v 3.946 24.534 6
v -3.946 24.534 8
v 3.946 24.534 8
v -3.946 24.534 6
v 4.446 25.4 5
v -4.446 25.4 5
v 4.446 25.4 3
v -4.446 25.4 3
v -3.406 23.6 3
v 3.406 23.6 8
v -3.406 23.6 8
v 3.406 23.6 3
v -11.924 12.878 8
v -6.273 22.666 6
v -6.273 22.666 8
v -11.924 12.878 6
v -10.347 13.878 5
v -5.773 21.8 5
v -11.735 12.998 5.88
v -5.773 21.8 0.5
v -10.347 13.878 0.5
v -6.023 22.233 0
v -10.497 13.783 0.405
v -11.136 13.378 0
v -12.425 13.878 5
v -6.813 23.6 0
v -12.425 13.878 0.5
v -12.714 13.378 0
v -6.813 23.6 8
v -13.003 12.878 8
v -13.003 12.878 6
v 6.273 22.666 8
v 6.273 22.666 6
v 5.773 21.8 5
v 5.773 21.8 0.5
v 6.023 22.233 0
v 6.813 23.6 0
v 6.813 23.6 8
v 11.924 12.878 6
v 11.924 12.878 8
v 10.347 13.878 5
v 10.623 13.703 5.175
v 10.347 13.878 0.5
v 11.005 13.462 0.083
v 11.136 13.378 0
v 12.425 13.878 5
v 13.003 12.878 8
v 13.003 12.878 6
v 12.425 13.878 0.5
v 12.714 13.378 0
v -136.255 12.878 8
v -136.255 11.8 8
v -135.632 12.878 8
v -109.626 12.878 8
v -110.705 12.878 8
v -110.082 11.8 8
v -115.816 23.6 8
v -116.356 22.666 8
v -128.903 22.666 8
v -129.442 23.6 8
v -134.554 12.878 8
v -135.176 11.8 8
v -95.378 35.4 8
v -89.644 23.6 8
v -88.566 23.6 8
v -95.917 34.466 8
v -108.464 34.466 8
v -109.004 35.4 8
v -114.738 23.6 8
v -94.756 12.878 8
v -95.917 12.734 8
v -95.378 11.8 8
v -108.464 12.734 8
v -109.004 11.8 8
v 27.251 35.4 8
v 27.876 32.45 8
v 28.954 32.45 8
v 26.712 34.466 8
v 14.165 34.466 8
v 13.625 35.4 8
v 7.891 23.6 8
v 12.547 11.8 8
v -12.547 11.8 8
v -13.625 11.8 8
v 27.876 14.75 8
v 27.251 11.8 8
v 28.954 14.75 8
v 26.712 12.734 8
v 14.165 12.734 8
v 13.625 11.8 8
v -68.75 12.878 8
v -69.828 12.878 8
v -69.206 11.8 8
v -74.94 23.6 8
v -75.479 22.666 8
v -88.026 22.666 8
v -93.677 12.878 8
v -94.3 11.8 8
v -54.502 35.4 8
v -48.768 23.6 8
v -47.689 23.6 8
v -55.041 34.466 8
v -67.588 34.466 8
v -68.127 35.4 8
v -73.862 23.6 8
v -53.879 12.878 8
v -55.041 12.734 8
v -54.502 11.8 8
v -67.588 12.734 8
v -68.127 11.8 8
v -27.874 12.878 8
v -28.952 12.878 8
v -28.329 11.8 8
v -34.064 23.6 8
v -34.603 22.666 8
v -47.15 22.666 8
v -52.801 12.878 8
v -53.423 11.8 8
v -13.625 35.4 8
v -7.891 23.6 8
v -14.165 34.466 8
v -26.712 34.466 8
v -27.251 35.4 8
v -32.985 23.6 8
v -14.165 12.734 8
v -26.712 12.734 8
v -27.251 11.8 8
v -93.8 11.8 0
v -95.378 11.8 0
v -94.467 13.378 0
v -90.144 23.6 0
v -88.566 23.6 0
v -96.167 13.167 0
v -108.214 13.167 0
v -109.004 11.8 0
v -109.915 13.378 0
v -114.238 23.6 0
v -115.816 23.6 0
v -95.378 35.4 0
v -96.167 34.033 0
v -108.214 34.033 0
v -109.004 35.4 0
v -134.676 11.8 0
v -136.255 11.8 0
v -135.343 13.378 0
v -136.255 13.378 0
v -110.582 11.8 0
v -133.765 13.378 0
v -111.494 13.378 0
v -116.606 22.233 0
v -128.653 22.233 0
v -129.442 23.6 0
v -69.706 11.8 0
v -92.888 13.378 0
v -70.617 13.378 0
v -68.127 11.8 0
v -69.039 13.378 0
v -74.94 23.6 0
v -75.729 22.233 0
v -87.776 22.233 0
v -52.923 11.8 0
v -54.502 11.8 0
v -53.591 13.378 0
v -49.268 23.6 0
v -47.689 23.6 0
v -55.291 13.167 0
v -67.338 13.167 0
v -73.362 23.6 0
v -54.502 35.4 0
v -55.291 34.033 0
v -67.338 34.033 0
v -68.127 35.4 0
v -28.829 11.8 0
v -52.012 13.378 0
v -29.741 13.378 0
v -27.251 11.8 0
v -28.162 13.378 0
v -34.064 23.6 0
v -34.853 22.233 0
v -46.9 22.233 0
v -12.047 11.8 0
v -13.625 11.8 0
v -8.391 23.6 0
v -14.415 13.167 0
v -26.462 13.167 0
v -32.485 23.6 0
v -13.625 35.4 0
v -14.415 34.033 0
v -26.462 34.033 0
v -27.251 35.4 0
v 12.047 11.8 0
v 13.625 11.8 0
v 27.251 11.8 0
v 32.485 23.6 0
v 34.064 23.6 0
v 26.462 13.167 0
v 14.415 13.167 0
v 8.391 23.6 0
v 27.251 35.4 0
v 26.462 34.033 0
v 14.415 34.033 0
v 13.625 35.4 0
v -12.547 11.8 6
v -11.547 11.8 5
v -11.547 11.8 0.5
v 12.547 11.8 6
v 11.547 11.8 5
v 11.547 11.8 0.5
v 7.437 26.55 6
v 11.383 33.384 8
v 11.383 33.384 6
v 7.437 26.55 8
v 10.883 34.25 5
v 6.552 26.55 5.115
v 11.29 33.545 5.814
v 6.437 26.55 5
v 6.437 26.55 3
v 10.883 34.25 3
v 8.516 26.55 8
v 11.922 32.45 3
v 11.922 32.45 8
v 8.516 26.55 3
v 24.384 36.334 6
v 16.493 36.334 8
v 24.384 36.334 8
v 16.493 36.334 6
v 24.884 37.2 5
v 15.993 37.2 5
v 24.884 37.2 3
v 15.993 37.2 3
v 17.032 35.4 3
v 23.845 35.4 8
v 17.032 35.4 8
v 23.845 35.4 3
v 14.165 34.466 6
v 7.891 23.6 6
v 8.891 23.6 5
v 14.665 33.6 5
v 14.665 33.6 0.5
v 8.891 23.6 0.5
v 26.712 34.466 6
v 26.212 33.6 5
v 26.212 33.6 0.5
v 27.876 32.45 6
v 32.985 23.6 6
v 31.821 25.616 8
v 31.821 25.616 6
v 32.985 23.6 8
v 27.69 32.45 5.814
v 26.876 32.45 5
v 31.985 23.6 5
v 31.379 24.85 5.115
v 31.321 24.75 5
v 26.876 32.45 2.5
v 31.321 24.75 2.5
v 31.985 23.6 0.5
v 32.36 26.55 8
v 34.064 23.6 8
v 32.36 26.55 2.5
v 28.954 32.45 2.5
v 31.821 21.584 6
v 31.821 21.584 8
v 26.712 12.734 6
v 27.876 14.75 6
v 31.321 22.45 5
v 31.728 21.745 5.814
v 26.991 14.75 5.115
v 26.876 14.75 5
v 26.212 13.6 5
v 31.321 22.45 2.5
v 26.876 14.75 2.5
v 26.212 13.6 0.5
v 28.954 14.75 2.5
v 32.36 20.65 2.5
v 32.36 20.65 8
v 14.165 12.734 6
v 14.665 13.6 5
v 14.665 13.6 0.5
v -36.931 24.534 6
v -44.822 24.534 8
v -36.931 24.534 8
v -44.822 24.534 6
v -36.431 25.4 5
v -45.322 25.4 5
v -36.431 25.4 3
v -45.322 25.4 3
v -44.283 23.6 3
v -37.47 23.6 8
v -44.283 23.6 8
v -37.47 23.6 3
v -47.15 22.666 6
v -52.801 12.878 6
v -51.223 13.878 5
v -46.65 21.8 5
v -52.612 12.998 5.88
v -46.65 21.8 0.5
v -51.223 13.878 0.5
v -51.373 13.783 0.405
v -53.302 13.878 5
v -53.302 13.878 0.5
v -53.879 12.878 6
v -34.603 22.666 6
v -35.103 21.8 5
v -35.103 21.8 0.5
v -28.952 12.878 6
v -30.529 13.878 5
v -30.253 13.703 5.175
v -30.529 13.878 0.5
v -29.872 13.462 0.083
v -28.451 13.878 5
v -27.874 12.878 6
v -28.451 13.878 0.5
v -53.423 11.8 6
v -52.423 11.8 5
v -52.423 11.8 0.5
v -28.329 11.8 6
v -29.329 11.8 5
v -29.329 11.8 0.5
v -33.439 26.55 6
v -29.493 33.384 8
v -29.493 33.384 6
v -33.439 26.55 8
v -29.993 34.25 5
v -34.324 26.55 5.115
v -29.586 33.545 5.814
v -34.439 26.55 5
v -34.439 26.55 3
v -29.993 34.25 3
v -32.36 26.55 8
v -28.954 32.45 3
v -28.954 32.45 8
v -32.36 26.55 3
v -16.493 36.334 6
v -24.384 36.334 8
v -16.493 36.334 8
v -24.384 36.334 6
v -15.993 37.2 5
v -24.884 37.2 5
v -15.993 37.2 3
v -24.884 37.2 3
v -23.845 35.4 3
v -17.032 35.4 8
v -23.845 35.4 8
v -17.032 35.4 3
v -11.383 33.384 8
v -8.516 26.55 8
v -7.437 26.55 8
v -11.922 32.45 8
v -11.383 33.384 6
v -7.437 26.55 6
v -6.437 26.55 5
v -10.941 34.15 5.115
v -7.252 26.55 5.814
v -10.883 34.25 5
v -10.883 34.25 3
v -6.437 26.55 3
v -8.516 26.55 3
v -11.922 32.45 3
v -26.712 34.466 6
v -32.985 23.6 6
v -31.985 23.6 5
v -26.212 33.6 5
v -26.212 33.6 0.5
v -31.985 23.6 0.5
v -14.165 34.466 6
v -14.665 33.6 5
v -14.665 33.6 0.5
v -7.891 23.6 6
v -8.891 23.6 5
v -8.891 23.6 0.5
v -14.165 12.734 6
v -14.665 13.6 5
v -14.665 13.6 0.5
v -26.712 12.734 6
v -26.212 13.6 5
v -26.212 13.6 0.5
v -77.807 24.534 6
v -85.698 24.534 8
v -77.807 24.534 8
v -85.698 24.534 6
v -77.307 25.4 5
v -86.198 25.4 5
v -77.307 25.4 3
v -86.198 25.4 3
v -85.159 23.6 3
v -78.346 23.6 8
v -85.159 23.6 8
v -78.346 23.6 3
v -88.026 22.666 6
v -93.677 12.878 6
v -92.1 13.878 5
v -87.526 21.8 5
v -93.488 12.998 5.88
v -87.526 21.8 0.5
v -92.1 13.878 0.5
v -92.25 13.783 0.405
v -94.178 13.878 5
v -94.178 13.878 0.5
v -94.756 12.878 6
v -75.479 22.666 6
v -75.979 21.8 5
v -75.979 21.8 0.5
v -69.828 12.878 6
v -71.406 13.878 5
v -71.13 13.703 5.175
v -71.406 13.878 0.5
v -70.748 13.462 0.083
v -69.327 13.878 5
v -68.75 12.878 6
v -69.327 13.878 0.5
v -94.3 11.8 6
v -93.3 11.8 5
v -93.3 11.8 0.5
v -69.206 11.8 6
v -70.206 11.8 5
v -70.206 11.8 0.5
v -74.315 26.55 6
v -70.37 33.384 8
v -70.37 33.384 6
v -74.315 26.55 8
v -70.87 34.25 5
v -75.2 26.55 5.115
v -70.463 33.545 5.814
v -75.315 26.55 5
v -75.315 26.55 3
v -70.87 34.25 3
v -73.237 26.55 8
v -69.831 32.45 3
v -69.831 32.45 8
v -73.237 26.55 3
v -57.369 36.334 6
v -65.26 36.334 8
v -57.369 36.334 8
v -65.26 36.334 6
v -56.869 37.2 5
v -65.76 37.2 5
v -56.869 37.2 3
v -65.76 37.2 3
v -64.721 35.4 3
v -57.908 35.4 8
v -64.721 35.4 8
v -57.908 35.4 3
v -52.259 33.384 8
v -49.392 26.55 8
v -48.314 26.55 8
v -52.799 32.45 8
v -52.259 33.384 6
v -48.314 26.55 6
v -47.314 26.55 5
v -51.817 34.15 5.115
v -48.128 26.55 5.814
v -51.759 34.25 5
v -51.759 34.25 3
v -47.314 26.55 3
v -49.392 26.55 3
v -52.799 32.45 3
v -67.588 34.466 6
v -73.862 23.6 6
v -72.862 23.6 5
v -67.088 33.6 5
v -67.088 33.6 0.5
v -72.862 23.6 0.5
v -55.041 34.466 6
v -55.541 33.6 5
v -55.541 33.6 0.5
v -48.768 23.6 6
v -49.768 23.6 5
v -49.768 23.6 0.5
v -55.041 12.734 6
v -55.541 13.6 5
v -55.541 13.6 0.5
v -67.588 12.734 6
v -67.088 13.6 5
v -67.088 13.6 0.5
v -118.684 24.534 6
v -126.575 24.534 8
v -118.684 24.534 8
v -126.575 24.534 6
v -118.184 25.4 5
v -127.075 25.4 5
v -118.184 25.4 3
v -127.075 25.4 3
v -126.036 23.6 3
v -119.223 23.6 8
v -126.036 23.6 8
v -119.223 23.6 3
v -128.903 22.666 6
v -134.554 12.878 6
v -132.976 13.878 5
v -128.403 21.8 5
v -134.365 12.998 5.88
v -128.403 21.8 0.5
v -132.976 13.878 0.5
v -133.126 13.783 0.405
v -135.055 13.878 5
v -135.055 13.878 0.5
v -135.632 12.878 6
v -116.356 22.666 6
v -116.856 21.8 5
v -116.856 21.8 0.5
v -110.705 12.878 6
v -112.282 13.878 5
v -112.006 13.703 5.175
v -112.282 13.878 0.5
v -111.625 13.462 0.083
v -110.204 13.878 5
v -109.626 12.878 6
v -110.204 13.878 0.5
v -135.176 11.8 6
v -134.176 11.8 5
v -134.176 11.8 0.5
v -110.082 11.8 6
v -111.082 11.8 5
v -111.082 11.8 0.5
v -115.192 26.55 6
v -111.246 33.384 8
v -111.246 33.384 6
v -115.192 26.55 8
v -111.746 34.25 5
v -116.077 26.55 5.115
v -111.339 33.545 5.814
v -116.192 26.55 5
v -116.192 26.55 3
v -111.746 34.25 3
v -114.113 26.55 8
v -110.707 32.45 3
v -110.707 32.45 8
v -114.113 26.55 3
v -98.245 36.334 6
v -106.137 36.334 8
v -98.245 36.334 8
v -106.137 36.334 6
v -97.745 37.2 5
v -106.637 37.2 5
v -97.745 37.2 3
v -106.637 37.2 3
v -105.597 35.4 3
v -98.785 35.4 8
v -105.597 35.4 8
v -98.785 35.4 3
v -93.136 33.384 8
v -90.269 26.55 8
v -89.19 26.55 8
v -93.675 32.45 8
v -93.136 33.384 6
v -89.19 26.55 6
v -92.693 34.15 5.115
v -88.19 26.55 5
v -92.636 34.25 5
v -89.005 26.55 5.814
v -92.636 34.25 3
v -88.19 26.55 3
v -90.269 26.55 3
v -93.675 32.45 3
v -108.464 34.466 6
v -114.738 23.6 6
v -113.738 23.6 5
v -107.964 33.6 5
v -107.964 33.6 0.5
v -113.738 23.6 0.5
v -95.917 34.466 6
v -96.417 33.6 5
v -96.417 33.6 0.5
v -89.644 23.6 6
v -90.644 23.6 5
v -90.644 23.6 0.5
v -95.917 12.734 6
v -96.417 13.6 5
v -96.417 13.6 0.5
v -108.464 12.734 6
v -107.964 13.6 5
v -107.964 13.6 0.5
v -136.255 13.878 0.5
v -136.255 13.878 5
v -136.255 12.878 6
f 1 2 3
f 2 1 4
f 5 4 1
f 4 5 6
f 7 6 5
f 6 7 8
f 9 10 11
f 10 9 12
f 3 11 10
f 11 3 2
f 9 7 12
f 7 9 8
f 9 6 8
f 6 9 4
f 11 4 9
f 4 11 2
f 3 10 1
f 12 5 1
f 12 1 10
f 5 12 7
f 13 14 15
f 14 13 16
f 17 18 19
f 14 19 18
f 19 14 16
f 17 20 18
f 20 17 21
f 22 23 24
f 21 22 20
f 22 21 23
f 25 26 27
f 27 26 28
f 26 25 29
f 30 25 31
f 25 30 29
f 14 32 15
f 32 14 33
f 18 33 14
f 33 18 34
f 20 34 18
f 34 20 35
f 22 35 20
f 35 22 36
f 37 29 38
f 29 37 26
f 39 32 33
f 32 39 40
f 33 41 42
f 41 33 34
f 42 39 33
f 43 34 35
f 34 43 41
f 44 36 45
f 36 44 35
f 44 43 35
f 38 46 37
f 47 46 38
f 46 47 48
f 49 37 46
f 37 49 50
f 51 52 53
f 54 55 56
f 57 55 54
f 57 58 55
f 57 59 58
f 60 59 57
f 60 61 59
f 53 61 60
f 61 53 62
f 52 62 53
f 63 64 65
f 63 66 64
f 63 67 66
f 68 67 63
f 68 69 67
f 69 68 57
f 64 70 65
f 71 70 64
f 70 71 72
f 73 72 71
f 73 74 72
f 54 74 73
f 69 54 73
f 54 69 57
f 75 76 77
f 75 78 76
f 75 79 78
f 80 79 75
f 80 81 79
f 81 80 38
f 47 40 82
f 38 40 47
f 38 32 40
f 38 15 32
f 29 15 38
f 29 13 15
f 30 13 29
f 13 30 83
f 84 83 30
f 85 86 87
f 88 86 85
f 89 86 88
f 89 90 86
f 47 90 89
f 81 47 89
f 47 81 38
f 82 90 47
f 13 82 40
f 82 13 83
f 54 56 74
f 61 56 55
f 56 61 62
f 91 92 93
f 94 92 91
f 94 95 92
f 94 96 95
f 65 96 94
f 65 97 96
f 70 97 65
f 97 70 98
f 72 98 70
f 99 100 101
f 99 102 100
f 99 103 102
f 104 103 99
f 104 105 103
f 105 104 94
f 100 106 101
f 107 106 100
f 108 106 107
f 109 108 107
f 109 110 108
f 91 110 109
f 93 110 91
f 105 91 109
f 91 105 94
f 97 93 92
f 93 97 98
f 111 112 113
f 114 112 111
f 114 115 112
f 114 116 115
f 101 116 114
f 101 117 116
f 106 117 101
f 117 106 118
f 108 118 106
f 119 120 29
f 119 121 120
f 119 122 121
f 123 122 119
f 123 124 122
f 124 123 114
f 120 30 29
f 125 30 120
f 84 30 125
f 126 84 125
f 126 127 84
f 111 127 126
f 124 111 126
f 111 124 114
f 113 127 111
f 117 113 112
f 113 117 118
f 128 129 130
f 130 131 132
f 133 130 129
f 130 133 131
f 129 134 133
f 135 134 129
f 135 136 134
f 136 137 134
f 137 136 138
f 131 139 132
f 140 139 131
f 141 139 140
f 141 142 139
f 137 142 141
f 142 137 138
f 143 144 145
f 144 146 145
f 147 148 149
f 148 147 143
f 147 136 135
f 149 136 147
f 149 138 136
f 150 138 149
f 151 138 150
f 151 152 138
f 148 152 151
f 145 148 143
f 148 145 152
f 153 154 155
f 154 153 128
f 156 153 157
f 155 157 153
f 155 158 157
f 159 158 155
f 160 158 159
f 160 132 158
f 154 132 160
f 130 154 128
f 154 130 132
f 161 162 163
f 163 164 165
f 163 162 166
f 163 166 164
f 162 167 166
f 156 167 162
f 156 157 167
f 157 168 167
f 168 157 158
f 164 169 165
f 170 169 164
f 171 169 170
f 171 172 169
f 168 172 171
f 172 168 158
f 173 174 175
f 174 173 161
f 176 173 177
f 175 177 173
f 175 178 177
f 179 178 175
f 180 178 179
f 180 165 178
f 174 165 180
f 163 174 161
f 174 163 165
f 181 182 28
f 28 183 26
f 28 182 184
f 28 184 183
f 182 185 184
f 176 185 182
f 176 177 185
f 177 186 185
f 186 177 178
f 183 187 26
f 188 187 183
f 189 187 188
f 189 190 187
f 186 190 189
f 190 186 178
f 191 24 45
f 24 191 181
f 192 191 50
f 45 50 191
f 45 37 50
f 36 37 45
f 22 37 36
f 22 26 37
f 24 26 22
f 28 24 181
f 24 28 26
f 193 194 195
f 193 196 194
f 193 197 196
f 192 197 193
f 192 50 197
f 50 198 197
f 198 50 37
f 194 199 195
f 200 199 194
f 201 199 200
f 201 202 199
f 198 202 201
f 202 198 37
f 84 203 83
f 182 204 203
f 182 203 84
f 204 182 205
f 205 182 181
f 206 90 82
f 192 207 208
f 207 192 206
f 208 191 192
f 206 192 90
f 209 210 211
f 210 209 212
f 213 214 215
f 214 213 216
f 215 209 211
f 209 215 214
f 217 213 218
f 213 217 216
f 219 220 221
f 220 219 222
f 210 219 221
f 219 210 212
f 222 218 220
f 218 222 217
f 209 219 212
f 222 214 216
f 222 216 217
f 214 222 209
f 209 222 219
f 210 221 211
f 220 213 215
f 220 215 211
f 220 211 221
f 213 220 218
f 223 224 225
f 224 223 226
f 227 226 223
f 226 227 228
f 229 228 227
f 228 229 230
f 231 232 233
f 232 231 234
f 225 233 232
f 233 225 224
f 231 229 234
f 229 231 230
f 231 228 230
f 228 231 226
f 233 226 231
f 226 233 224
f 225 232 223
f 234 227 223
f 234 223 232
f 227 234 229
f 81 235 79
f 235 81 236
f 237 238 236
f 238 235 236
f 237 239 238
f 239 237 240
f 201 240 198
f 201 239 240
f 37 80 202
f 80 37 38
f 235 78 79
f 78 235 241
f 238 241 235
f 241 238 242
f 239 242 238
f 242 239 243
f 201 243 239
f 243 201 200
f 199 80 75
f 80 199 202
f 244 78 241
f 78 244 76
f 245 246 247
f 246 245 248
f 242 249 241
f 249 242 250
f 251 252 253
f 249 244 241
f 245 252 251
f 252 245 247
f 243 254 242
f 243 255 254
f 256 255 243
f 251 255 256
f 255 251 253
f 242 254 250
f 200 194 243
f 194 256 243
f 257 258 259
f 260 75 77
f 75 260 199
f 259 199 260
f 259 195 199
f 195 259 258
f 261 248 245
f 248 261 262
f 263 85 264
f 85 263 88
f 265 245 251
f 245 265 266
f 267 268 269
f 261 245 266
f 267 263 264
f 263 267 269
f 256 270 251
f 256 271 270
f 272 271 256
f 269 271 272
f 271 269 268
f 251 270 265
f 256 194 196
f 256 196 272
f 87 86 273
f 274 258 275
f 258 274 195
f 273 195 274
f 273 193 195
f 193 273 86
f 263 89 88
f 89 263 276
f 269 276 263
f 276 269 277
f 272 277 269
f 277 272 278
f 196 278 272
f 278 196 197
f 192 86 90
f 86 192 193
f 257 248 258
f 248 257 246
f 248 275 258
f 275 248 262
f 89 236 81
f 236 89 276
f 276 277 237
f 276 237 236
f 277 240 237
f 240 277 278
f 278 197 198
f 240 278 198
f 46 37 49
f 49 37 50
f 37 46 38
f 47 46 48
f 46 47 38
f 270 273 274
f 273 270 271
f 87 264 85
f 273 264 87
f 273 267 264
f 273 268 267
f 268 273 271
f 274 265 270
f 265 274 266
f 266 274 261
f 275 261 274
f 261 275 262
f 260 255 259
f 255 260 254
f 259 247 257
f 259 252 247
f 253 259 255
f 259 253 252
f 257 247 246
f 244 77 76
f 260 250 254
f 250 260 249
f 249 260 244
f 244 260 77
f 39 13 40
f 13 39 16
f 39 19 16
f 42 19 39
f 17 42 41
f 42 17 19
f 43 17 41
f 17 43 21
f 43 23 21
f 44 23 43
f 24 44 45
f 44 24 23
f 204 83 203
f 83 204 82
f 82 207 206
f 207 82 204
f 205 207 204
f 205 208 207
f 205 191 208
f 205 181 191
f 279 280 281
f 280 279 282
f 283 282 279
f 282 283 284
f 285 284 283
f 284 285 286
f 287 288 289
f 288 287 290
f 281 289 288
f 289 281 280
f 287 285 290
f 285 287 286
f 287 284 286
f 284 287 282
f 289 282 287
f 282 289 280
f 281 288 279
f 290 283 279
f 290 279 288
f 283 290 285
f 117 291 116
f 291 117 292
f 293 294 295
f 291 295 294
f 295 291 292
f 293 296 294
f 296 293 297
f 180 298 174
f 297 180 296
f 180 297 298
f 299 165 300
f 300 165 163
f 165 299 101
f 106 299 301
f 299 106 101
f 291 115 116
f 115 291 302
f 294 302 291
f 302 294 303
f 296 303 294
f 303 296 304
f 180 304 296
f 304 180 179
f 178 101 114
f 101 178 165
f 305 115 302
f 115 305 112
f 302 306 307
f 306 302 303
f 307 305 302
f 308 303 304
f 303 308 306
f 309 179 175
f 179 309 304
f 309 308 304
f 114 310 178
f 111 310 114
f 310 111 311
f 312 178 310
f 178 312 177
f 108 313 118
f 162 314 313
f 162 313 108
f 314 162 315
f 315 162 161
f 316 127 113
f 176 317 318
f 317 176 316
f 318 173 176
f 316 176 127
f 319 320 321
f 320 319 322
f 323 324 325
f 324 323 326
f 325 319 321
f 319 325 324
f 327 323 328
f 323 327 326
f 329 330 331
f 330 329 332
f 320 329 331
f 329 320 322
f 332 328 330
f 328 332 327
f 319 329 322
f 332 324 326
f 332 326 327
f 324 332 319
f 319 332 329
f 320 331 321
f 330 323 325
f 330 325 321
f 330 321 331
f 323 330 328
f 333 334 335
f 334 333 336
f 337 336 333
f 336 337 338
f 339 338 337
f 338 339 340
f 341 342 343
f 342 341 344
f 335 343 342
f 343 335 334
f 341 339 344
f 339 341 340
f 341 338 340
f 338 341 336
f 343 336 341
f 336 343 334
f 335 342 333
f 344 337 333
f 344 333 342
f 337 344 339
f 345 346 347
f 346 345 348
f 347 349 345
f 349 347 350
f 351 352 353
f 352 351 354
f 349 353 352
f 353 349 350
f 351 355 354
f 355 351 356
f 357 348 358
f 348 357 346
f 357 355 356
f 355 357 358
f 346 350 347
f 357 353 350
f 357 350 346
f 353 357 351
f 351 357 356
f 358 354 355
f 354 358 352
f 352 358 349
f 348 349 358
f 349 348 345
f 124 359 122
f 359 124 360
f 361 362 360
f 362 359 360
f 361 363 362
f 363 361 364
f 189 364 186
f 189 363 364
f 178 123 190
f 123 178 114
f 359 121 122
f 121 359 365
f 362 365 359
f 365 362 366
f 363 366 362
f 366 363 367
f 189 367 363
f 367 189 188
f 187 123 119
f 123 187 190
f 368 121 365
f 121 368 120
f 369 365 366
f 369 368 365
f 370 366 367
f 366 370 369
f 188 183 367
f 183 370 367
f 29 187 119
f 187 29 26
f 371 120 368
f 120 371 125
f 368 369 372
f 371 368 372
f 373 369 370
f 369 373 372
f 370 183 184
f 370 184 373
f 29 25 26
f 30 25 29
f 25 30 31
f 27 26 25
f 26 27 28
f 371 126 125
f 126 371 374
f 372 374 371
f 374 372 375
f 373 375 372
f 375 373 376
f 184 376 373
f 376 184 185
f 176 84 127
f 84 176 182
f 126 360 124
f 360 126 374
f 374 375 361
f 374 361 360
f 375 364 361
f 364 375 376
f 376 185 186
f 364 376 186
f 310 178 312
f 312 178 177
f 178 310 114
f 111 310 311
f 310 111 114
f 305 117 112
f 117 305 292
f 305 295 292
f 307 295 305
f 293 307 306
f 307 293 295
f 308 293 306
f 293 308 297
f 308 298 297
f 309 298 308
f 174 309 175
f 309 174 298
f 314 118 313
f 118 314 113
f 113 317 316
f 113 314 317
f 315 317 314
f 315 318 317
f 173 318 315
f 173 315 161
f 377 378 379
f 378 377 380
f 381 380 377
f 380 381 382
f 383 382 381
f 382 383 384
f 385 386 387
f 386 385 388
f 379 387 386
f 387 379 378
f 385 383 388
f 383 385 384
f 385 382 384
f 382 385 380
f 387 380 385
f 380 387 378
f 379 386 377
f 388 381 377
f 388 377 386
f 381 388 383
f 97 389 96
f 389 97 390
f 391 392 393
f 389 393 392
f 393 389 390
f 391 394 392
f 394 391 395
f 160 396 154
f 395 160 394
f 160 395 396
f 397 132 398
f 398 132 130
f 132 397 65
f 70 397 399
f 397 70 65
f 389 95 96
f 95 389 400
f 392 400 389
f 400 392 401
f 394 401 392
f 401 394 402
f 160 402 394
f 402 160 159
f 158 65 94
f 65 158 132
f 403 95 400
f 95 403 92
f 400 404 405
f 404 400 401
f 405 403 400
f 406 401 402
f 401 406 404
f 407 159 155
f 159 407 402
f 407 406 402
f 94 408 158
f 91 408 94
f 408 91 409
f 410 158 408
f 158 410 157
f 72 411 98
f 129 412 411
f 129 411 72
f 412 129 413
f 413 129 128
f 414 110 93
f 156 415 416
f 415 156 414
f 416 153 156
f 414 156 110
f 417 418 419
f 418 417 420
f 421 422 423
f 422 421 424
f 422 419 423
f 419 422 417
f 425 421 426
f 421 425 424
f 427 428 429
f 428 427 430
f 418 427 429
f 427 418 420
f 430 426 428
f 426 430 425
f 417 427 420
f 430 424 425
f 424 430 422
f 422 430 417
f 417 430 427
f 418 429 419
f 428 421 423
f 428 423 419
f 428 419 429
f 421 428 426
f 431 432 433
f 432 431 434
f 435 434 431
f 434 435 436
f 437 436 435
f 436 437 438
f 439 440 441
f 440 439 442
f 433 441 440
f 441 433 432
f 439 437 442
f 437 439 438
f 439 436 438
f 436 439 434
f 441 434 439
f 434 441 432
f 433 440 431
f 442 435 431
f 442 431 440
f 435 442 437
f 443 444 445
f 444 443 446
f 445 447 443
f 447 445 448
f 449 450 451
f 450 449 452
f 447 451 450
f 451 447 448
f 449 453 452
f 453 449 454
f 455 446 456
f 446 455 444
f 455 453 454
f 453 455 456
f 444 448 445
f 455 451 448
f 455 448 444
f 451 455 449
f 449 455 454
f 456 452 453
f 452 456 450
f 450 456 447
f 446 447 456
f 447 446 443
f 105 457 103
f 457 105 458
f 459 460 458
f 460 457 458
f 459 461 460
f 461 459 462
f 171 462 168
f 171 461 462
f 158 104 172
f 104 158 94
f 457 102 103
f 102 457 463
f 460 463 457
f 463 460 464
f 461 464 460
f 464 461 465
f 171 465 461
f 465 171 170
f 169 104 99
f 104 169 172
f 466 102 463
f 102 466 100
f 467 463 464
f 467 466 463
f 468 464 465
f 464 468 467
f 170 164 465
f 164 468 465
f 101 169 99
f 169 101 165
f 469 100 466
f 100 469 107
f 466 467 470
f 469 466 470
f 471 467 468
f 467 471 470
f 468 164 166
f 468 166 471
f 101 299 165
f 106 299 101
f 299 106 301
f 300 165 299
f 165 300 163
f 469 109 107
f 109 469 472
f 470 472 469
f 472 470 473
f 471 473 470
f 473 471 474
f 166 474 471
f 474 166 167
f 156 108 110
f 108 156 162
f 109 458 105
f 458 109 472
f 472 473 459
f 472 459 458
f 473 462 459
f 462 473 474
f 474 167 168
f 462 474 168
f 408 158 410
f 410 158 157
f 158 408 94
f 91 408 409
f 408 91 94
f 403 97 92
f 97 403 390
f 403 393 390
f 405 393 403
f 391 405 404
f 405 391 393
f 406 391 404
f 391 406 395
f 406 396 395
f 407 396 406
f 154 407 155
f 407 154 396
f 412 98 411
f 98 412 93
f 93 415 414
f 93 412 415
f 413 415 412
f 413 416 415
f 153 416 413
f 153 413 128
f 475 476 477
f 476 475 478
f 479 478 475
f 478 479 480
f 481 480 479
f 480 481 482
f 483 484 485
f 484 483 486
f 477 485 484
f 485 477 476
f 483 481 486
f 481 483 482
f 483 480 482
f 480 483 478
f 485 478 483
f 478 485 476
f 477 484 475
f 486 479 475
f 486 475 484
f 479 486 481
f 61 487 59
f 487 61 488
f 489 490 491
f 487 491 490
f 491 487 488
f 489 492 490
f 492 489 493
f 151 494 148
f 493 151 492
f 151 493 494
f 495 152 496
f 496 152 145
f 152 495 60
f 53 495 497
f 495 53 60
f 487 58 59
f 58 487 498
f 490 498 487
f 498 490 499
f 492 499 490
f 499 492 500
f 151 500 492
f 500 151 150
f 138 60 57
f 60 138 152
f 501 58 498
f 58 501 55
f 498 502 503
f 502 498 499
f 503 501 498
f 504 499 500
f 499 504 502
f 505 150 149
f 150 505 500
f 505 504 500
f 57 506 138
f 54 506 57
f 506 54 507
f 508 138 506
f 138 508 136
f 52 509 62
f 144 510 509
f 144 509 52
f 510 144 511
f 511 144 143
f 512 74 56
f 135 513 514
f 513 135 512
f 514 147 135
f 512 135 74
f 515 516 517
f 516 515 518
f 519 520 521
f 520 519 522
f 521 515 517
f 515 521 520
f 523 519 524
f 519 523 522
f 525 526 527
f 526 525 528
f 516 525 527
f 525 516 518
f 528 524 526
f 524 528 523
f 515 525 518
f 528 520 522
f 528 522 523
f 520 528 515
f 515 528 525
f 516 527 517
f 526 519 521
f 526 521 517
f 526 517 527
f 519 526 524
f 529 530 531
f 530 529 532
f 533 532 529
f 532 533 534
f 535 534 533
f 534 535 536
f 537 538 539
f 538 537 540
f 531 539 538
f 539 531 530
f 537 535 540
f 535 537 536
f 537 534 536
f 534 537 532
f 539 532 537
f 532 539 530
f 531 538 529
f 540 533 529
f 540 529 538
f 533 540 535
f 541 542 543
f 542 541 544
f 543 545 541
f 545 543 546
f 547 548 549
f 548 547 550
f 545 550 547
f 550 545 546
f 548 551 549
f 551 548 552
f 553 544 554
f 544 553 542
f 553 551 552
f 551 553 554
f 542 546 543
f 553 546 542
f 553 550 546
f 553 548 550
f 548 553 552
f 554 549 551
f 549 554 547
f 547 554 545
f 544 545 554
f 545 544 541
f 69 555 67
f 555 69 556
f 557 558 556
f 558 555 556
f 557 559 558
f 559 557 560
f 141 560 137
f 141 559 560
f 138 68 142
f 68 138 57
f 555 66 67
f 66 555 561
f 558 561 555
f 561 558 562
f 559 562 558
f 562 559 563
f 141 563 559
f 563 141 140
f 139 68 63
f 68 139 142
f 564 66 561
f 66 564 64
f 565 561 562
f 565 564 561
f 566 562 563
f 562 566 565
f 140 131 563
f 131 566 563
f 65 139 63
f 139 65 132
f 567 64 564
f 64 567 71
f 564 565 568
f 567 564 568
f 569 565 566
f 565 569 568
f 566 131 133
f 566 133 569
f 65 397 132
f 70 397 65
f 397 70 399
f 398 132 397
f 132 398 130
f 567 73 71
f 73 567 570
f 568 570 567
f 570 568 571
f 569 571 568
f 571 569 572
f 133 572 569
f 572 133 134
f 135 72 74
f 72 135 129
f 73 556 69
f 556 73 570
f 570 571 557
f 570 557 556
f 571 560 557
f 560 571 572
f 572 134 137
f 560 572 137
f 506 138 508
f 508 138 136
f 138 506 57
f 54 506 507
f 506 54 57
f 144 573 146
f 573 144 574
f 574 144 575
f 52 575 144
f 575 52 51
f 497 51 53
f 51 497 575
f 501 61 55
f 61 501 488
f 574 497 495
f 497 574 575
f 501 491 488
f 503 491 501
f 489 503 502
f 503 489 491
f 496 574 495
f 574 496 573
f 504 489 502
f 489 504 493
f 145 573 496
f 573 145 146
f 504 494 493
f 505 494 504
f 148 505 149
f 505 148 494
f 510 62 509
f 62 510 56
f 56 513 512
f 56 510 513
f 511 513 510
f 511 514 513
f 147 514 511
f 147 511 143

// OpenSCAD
// file: honeycomb_element.scad
$fn = 50;

radius = 13.6;
diameter = radius * 2;

h_inner = 10;
r_inner = h_inner * 2 / sqrt(3);

h_outer = 10 + 1.8;
r_outer = h_outer * 2 / sqrt(3);

h_thin = 10 + 1;
r_thin = h_thin * 2 / sqrt(3);

total_height = 8;

small_value = 0.1;

clips_height = 5;
clips_offset = 0.5;
clips_side_offset = 0.00;

module basic_polygon() {
  polygon(
    [
      [r_outer, total_height],
      [r_outer, 0],
      [r_inner + 0.5, 0],
      [r_inner, 0.5],
      [r_inner, total_height - 3],
      [r_inner + 1, total_height - 2],
      [r_inner + 1, total_height],
    ]
  );
}

module basic_model() {
  rotate_extrude($fn=6) {
    basic_polygon();
  }
}

module panel_with_clips(pin_1 = false, pin_2 = false, pin_3 = false, pin_4 = false, pin_5 = false, pin_6 = false, slot_1 = false, slot_2 = false, slot_3 = false, slot_4 = false, slot_5 = false, slot_6 = false) {

  difference() {
    basic_model();

    if (slot_1) {
      rotate([0, 0, 0])
        translate([0, -h_outer * 2, total_height - (clips_height + clips_offset) / 2])
          linear_extrude(height=clips_height + clips_offset, center=true)
            polygon([[clips_side_offset, h_outer / 2], [-clips_side_offset, h_outer / 2], [-r_outer / 2 - clips_side_offset, h_outer * 1.5], [r_outer / 2 + clips_side_offset, h_outer * 1.5]]);
    }

    if (slot_2) {
      rotate([0, 0, 60])
        translate([0, -h_outer * 2, total_height - (clips_height + clips_offset) / 2])
          linear_extrude(height=clips_height + clips_offset, center=true)
            polygon([[clips_side_offset, h_outer / 2], [-clips_side_offset, h_outer / 2], [-r_outer / 2 - clips_side_offset, h_outer * 1.5], [r_outer / 2 + clips_side_offset, h_outer * 1.5]]);
    }

    if (slot_3) {
      rotate([0, 0, 120])
        translate([0, -h_outer * 2, total_height - (clips_height + clips_offset) / 2])
          linear_extrude(height=clips_height + clips_offset, center=true)
            polygon([[clips_side_offset, h_outer / 2], [-clips_side_offset, h_outer / 2], [-r_outer / 2 - clips_side_offset, h_outer * 1.5], [r_outer / 2 + clips_side_offset, h_outer * 1.5]]);
    }

    if (slot_4) {
      rotate([0, 0, 180])
        translate([0, -h_outer * 2, total_height - (clips_height + clips_offset) / 2])
          linear_extrude(height=clips_height + clips_offset, center=true)
            polygon([[clips_side_offset, h_outer / 2], [-clips_side_offset, h_outer / 2], [-r_outer / 2 - clips_side_offset, h_outer * 1.5], [r_outer / 2 + clips_side_offset, h_outer * 1.5]]);
    }

    if (slot_5) {
      rotate([0, 0, 240])
        translate([0, -h_outer * 2, total_height - (clips_height + clips_offset) / 2])
          linear_extrude(height=clips_height + clips_offset, center=true)
            polygon([[clips_side_offset, h_outer / 2], [-clips_side_offset, h_outer / 2], [-r_outer / 2 - clips_side_offset, h_outer * 1.5], [r_outer / 2 + clips_side_offset, h_outer * 1.5]]);
    }

    if (slot_6) {
      rotate([0, 0, 300])
        translate([0, -h_outer * 2, total_height - (clips_height + clips_offset) / 2])
          linear_extrude(height=clips_height + clips_offset, center=true)
            polygon([[clips_side_offset, h_outer / 2], [-clips_side_offset, h_outer / 2], [-r_outer / 2 - clips_side_offset, h_outer * 1.5], [r_outer / 2 + clips_side_offset, h_outer * 1.5]]);
    }
  }

  if (pin_1) {
    intersection() {
      translate([0, -h_outer * 2, 0])
        basic_model();
      translate([0, 0, total_height - clips_height / 2]) {
        rotate([0, 0, -180])
          linear_extrude(height=clips_height, center=true)
            polygon([[0, h_outer / 2], [-r_outer / 2, h_outer * 1.5], [r_outer / 2, h_outer * 1.5]]);
      }
    }
  }

  if (pin_2) {
    intersection() {
      translate([r_outer * 1.5, -h_outer, 0])
        basic_model();
      translate([0, 0, total_height - clips_height / 2]) {
        rotate([0, 0, -120])
          linear_extrude(height=clips_height, center=true)
            polygon([[0, h_outer / 2], [-r_outer / 2, h_outer * 1.5], [r_outer / 2, h_outer * 1.5]]);
      }
    }
  }

  if (pin_3) {
    intersection() {
      translate([r_outer * 1.5, h_outer, 0])
        basic_model();
      translate([0, 0, total_height - clips_height / 2]) {
        rotate([0, 0, -60])
          linear_extrude(height=clips_height, center=true)
            polygon([[0, h_outer / 2], [-r_outer / 2, h_outer * 1.5], [r_outer / 2, h_outer * 1.5]]);
      }
    }
  }

  if (pin_4) {
    intersection() {
      translate([0, h_outer * 2, 0])
        basic_model();

      translate([0, 0, total_height - clips_height / 2]) {
        linear_extrude(height=clips_height, center=true)
          polygon([[0, h_outer / 2], [-r_outer / 2, h_outer * 1.5], [r_outer / 2, h_outer * 1.5]]);
      }
    }
  }

  if (pin_5) {
    intersection() {
      translate([-r_outer * 1.5, h_outer, 0])
        basic_model();
      translate([0, 0, total_height - clips_height / 2]) {
        rotate([0, 0, 60])
          linear_extrude(height=clips_height, center=true)
            polygon([[0, h_outer / 2], [-r_outer / 2, h_outer * 1.5], [r_outer / 2, h_outer * 1.5]]);
      }
    }
  }

  if (pin_6) {
    intersection() {
      translate([-r_outer * 1.5, -h_outer, 0])
        basic_model();

      translate([0, 0, total_height - clips_height / 2]) {
        rotate([0, 0, 120])
          linear_extrude(height=clips_height, center=true)
            polygon([[0, h_outer / 2], [-r_outer / 2, h_outer * 1.5], [r_outer / 2, h_outer * 1.5]]);
      }
    }
  }
}

// end honeycomb_element.scad
// main file
$fn = 50;

h_outer = 10+1.8;
r_outer = h_outer * 2/sqrt(3);

use <honeycomb_element.scad>;

module perimeter_top_item(left_slot=true, left_pin=false, end_slot=false) {
  intersection() {
    translate([0, h_outer, 0])
        panel_with_clips(pin_4=true);  
    
    translate([0, 50+h_outer, 0])
        cube([100, 100, 100], center = true);
  }
  
  translate([r_outer*1.5, 2*h_outer, 0])
     panel_with_clips(slot_2=end_slot, slot_3=left_slot, pin_3=left_pin, pin_4=true, pin_5=true); 
  
    
  translate([0, -(h_outer-r_outer)+2*h_outer, 0])
      rotate([90, 0, -90])
        linear_extrude(height = r_outer * 2, center=true)
          basic_polygon();
    
}




module perimeter_bottom() {
    perimeter_top_item(end_slot=true);
    
    translate([-3*r_outer, 0, 0])
      perimeter_top_item(left_slot=false, left_pin=true);

    translate([-6*r_outer, 0, 0])
      perimeter_top_item(left_slot=false, left_pin=true);    
    
    translate([-9*r_outer, 0, 0])
      perimeter_top_item(left_slot=false, left_pin=true);    
    
}



    
perimeter_bottom();
